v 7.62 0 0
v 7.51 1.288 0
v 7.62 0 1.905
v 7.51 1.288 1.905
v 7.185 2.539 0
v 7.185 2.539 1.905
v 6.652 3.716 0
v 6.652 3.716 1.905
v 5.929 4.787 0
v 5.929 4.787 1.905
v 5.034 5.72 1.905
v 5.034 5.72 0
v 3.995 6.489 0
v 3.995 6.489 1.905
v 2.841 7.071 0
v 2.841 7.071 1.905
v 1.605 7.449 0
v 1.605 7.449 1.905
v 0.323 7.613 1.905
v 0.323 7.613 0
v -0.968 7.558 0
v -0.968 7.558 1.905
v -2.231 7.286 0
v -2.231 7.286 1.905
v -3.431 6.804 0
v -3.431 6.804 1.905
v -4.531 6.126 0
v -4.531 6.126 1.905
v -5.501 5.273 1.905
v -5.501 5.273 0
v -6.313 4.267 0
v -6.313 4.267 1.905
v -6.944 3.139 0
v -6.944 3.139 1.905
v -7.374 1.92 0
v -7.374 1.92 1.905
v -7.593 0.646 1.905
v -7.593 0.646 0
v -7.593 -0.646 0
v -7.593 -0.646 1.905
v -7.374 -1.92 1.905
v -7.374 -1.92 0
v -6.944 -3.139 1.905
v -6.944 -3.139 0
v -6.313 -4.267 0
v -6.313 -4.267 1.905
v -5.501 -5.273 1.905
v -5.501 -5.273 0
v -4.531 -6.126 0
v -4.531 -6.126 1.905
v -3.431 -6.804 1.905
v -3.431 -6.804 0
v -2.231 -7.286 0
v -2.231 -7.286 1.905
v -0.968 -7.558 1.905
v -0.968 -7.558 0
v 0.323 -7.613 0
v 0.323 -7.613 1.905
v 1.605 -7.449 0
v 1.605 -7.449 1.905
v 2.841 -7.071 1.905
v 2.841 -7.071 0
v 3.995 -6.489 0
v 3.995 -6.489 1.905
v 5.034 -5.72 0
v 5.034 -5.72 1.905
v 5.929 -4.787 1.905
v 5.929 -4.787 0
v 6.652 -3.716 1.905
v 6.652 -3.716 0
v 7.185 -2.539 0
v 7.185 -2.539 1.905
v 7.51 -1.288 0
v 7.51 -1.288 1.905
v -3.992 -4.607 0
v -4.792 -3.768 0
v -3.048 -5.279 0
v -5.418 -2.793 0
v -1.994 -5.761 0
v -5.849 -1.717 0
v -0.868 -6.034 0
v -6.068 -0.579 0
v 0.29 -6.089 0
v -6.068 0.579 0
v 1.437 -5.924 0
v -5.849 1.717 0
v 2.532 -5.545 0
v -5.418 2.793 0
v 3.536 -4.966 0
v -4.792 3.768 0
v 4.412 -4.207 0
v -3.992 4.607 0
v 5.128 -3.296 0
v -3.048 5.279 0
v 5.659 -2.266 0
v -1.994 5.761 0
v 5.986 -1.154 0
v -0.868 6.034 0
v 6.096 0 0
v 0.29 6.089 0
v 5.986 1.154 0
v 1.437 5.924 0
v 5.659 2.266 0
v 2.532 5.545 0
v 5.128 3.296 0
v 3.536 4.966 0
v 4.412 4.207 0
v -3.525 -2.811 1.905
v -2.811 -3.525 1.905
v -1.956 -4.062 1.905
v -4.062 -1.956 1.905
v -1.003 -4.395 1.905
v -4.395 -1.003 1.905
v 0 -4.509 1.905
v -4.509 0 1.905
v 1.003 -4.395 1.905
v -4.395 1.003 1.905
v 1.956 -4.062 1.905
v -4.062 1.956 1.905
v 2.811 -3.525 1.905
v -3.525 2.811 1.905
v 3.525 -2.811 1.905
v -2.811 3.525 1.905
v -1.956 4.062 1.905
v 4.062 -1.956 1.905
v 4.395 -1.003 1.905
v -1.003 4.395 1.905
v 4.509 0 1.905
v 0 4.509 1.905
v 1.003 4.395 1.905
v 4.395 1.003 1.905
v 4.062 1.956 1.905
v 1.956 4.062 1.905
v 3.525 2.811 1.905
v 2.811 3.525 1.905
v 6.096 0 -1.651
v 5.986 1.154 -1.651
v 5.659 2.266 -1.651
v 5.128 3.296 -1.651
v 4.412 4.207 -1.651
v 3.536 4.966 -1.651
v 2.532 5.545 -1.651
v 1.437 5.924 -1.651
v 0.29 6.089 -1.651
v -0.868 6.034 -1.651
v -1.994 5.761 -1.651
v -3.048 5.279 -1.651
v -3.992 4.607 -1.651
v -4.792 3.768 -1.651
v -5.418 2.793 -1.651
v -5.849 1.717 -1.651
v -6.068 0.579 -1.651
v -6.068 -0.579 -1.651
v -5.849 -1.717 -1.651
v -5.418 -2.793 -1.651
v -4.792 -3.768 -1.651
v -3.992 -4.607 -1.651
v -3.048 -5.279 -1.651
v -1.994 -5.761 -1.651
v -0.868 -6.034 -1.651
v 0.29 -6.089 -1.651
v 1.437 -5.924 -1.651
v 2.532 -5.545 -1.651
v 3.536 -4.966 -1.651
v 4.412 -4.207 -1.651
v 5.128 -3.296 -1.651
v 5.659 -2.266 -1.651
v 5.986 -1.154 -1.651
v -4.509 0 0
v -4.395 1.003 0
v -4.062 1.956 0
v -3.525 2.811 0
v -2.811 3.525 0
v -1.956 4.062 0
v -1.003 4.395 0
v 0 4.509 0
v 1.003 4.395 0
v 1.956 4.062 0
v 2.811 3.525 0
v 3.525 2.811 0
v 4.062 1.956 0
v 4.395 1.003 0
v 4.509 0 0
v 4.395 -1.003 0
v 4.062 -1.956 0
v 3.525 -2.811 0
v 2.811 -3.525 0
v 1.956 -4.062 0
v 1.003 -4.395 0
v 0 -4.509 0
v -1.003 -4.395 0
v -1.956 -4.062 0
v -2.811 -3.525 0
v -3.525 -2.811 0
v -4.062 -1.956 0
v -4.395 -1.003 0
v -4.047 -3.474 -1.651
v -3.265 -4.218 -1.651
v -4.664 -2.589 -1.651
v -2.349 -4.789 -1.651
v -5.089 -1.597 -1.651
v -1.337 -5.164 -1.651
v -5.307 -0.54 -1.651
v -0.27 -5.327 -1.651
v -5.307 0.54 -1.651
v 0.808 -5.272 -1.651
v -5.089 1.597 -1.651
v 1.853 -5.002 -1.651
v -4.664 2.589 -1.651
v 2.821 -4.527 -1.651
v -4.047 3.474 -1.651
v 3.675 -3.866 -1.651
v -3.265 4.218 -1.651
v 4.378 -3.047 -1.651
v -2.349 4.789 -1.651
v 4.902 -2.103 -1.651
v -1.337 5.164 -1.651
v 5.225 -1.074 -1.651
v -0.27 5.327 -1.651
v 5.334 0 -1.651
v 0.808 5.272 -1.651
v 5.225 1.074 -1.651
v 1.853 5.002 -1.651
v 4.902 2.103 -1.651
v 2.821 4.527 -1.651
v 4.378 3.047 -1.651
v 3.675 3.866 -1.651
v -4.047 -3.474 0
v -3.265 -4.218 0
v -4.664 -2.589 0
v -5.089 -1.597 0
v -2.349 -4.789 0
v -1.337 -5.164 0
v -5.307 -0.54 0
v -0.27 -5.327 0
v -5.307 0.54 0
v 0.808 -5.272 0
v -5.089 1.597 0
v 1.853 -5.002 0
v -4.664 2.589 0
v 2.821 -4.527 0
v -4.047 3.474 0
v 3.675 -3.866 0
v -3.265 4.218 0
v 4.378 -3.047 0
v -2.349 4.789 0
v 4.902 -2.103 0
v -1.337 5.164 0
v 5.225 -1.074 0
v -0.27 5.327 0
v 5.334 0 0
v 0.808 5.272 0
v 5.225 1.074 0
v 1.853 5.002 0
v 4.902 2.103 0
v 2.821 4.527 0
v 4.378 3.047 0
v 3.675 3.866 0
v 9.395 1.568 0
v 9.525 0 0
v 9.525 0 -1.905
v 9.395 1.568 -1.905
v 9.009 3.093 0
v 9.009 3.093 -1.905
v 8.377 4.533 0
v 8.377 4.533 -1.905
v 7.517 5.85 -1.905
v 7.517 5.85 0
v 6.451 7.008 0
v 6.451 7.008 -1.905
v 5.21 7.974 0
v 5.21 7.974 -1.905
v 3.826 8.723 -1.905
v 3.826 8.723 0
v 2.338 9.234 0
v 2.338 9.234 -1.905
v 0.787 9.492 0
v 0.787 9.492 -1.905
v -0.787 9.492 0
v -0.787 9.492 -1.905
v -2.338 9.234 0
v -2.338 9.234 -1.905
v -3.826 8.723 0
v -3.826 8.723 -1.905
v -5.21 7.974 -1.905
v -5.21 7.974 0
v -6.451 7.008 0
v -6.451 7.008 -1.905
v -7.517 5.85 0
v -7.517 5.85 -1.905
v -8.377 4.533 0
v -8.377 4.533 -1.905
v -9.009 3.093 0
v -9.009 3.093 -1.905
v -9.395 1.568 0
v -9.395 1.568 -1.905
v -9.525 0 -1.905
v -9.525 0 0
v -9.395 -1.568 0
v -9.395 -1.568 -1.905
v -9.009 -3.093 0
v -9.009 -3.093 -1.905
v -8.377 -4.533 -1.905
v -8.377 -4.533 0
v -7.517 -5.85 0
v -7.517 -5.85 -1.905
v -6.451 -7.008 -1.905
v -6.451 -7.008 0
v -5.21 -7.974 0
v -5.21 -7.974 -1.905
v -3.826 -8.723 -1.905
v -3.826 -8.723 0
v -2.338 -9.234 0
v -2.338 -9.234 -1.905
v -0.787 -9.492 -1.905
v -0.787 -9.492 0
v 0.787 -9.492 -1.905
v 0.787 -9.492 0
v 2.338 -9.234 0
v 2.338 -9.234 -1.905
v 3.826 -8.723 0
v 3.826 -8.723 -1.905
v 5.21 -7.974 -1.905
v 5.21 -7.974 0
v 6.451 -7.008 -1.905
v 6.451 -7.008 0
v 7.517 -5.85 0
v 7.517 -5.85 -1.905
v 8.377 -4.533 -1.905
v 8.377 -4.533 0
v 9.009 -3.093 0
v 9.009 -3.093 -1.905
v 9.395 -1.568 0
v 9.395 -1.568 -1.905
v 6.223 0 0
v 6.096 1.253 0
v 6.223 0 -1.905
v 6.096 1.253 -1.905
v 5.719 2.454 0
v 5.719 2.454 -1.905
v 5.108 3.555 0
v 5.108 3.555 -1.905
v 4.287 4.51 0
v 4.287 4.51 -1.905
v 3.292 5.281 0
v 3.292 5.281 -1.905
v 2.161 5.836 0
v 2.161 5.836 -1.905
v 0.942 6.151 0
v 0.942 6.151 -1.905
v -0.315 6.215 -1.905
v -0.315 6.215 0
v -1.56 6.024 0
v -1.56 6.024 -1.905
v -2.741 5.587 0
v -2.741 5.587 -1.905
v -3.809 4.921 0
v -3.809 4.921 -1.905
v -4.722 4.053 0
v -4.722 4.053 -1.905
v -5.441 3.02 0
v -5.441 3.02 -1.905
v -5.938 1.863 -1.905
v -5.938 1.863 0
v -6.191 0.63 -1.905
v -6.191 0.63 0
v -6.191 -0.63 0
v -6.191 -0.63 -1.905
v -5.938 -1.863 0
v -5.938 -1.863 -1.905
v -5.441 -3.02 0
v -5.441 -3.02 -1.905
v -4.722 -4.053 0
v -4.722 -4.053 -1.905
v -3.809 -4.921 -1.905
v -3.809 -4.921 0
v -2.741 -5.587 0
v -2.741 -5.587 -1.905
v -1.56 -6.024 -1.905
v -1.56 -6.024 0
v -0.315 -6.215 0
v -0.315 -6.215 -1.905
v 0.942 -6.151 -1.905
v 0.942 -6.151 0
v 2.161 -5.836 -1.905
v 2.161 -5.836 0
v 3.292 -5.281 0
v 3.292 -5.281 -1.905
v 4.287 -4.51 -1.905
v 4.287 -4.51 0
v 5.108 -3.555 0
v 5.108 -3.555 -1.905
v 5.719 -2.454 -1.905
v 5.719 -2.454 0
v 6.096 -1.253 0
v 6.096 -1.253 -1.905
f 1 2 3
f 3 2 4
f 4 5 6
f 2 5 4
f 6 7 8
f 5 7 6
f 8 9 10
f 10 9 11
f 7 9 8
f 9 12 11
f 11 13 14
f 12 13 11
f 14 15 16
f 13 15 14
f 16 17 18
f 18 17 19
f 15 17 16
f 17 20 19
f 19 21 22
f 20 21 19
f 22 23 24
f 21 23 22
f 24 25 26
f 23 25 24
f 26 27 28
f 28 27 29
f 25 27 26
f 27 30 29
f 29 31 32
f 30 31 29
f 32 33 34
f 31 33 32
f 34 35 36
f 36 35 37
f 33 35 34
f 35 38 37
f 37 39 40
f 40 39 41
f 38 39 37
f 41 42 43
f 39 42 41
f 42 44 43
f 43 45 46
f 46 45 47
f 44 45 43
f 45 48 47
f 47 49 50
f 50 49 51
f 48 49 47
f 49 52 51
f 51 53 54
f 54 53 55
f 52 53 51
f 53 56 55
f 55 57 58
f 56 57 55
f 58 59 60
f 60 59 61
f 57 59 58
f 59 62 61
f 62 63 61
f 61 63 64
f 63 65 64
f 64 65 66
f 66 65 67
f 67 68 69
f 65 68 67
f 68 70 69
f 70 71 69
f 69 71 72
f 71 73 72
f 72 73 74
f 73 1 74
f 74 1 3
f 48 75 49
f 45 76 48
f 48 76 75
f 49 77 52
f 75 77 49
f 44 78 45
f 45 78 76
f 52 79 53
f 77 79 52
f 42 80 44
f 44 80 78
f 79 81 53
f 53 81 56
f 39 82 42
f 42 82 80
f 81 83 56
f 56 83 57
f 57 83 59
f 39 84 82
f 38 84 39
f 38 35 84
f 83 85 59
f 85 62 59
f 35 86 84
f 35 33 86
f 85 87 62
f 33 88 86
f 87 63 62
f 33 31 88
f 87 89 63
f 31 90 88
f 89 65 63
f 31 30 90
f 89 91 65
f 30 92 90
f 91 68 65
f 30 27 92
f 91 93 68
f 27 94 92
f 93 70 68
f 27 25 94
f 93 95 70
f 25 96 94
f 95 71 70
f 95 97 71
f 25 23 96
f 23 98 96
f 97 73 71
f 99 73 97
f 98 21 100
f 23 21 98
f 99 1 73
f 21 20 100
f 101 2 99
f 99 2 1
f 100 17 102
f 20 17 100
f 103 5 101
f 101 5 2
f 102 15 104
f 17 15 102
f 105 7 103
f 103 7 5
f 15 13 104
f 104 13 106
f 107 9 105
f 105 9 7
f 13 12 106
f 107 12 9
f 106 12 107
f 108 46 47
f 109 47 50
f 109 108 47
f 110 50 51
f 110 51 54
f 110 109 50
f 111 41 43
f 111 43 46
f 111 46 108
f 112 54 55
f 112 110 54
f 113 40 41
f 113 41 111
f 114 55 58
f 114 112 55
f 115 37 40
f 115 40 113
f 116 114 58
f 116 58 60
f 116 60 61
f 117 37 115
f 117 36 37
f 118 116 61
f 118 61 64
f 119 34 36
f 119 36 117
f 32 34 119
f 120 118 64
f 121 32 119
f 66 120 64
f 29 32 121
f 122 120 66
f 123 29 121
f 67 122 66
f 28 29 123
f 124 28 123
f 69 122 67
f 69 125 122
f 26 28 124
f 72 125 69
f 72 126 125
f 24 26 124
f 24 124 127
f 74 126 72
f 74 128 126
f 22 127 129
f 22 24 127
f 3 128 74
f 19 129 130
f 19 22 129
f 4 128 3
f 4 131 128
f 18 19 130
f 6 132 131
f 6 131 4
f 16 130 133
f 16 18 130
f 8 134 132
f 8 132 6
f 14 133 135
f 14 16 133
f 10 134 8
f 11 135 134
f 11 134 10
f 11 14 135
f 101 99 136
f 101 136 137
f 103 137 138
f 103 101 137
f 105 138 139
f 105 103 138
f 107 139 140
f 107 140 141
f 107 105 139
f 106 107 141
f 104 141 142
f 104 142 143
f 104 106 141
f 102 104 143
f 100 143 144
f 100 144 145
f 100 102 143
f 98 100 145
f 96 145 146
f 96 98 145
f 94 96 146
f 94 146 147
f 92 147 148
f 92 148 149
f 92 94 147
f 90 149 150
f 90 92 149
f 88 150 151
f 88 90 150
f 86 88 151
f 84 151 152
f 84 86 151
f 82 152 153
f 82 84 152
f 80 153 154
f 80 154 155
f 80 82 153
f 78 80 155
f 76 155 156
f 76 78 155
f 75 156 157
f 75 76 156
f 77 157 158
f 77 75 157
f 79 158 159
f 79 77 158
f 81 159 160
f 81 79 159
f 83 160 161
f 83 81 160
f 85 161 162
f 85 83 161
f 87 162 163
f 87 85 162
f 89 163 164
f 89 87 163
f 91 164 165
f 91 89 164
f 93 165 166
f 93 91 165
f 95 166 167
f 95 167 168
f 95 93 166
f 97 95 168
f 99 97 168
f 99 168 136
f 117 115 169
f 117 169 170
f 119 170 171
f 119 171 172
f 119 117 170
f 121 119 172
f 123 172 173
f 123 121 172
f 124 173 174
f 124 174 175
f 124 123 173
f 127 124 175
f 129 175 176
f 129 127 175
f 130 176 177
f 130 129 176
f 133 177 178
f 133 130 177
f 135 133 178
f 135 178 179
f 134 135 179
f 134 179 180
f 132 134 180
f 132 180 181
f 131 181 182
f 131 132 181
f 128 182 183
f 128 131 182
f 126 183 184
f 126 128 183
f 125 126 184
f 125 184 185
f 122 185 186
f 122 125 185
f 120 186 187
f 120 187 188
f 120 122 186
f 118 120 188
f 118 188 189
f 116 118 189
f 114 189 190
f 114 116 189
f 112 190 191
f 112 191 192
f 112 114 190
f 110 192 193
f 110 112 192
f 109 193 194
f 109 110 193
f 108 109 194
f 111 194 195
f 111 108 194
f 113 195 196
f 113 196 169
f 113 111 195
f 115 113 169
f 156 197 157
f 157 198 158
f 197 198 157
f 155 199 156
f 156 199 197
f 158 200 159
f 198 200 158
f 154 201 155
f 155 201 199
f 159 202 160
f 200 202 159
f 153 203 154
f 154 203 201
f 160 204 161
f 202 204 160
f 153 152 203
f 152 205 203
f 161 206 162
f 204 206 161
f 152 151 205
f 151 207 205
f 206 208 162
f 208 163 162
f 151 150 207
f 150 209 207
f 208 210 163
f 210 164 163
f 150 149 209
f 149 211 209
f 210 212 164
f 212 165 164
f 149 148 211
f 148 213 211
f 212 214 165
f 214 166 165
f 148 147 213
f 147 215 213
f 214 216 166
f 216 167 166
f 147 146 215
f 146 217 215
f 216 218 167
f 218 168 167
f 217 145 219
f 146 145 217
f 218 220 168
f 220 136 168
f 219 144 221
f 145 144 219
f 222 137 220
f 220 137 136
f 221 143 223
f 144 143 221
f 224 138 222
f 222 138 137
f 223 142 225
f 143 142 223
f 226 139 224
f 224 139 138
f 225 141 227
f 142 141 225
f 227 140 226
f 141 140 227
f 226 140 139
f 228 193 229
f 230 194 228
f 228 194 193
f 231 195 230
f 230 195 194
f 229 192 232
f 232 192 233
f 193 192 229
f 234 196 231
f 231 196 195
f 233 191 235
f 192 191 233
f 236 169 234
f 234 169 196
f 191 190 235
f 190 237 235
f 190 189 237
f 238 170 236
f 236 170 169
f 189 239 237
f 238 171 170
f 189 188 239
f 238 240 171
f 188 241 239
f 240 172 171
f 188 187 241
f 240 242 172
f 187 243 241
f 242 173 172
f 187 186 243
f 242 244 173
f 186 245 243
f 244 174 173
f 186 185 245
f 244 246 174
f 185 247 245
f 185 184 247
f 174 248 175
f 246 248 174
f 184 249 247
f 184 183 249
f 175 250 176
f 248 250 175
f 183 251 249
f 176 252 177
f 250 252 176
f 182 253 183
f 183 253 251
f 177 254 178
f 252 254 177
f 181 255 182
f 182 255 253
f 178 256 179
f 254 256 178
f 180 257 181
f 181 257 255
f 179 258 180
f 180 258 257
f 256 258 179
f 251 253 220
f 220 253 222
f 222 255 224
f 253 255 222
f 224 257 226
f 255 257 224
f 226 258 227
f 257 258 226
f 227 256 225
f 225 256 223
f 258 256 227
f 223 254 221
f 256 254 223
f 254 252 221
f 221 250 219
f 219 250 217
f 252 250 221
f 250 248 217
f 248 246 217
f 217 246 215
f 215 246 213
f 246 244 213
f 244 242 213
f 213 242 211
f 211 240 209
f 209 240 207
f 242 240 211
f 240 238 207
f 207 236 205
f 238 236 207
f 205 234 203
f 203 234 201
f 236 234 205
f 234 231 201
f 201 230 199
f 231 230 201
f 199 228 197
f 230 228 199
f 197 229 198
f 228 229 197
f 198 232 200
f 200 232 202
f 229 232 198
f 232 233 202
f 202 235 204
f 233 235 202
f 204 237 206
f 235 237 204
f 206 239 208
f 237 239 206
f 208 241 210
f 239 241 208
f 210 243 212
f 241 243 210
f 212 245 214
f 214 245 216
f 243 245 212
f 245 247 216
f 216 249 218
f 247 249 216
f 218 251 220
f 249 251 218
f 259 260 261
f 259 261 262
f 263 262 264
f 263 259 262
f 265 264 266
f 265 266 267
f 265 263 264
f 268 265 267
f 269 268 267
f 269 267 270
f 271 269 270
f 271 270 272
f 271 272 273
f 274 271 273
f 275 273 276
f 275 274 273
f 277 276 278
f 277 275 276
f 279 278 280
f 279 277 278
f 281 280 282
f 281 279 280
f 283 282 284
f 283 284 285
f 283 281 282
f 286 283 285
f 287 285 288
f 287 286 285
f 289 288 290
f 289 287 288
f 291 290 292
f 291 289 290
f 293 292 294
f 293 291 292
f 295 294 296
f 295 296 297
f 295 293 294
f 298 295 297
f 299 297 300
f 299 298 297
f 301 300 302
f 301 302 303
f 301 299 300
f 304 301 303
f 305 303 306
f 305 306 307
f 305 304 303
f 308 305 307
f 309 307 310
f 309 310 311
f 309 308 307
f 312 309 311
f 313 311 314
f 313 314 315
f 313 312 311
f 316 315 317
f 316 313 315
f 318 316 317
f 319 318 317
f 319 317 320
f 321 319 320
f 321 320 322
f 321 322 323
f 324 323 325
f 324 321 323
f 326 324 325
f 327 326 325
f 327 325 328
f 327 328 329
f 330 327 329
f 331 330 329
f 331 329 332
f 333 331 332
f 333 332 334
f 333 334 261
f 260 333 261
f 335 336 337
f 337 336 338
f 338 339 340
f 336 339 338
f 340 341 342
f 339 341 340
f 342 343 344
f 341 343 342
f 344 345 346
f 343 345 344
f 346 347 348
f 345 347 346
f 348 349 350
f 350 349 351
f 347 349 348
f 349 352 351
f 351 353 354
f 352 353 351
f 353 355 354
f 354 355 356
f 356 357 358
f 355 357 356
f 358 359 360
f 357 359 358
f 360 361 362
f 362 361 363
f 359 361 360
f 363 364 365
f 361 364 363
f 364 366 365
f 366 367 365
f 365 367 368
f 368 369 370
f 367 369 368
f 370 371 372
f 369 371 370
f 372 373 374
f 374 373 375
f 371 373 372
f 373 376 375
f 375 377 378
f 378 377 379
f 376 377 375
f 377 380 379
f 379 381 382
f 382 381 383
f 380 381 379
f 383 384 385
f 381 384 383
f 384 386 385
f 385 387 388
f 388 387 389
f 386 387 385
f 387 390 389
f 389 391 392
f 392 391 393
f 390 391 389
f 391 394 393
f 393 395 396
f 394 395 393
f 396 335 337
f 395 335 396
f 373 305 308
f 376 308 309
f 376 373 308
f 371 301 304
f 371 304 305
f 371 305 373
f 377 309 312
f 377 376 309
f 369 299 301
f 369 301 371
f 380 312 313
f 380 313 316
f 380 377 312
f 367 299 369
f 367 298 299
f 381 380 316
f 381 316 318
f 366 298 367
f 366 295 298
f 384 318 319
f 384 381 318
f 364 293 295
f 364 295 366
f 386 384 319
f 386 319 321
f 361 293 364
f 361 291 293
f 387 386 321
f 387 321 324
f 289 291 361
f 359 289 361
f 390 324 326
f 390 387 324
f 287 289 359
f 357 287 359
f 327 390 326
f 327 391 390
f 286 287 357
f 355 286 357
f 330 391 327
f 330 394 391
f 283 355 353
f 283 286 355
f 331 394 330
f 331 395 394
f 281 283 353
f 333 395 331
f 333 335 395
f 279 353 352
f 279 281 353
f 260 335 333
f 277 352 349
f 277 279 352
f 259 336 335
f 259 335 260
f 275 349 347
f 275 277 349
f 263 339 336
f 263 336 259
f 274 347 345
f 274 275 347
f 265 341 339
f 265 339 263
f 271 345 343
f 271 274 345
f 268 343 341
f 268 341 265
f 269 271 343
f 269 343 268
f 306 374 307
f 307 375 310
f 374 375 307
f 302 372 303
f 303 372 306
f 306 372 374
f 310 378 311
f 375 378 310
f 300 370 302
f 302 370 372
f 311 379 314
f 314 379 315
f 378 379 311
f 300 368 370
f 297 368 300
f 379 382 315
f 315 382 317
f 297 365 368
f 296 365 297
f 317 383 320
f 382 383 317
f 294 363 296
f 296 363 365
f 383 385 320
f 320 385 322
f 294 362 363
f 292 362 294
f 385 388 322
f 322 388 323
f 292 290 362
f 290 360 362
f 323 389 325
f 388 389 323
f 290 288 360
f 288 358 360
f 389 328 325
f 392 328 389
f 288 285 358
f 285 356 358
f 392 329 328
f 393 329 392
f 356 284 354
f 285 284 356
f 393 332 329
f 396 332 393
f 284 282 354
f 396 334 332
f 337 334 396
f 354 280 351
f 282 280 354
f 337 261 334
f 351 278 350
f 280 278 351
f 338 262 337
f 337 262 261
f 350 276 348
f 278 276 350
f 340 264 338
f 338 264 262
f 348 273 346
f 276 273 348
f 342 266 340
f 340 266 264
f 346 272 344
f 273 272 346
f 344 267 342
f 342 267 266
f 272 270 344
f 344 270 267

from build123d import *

# Parameters (mm, degrees)
SKETCH_R      = 9.525
SKETCH_R_2    = 6.223
PAD_DEPTH     = 1.905
SKETCH001_R   = 6.096
SKETCH001_R_2 = 5.334
PAD001_DEPTH  = 1.651
SKETCH002_R   = 7.62
PAD002_DEPTH  = 1.905
SKETCH003_R   = 4.5085
HOLE_DEPTH    = 1.906


with BuildPart() as lower_washer:
    # Sketch → Pad (new body)
    with BuildSketch(Plane.XY):
        Circle(SKETCH_R)
        Circle(SKETCH_R_2, mode=Mode.SUBTRACT)
    extrude(amount=-PAD_DEPTH)


with BuildPart() as upper_washer:
    # Sketch001 → Pad001 (new body)
    with BuildSketch(Plane.XY):
        Circle(SKETCH001_R)
        Circle(SKETCH001_R_2, mode=Mode.SUBTRACT)
    extrude(amount=-PAD001_DEPTH)

    # Sketch002 → Pad002 (join)
    with BuildSketch(Plane.XY):
        Circle(SKETCH002_R)
    extrude(amount=PAD002_DEPTH)

    # Sketch003 → Hole (cut, through all)
    with BuildSketch(Plane.XY):
        Circle(SKETCH003_R)
    extrude(amount=HOLE_DEPTH, mode=Mode.SUBTRACT)


solid = Compound([lower_washer.part, upper_washer.part])
